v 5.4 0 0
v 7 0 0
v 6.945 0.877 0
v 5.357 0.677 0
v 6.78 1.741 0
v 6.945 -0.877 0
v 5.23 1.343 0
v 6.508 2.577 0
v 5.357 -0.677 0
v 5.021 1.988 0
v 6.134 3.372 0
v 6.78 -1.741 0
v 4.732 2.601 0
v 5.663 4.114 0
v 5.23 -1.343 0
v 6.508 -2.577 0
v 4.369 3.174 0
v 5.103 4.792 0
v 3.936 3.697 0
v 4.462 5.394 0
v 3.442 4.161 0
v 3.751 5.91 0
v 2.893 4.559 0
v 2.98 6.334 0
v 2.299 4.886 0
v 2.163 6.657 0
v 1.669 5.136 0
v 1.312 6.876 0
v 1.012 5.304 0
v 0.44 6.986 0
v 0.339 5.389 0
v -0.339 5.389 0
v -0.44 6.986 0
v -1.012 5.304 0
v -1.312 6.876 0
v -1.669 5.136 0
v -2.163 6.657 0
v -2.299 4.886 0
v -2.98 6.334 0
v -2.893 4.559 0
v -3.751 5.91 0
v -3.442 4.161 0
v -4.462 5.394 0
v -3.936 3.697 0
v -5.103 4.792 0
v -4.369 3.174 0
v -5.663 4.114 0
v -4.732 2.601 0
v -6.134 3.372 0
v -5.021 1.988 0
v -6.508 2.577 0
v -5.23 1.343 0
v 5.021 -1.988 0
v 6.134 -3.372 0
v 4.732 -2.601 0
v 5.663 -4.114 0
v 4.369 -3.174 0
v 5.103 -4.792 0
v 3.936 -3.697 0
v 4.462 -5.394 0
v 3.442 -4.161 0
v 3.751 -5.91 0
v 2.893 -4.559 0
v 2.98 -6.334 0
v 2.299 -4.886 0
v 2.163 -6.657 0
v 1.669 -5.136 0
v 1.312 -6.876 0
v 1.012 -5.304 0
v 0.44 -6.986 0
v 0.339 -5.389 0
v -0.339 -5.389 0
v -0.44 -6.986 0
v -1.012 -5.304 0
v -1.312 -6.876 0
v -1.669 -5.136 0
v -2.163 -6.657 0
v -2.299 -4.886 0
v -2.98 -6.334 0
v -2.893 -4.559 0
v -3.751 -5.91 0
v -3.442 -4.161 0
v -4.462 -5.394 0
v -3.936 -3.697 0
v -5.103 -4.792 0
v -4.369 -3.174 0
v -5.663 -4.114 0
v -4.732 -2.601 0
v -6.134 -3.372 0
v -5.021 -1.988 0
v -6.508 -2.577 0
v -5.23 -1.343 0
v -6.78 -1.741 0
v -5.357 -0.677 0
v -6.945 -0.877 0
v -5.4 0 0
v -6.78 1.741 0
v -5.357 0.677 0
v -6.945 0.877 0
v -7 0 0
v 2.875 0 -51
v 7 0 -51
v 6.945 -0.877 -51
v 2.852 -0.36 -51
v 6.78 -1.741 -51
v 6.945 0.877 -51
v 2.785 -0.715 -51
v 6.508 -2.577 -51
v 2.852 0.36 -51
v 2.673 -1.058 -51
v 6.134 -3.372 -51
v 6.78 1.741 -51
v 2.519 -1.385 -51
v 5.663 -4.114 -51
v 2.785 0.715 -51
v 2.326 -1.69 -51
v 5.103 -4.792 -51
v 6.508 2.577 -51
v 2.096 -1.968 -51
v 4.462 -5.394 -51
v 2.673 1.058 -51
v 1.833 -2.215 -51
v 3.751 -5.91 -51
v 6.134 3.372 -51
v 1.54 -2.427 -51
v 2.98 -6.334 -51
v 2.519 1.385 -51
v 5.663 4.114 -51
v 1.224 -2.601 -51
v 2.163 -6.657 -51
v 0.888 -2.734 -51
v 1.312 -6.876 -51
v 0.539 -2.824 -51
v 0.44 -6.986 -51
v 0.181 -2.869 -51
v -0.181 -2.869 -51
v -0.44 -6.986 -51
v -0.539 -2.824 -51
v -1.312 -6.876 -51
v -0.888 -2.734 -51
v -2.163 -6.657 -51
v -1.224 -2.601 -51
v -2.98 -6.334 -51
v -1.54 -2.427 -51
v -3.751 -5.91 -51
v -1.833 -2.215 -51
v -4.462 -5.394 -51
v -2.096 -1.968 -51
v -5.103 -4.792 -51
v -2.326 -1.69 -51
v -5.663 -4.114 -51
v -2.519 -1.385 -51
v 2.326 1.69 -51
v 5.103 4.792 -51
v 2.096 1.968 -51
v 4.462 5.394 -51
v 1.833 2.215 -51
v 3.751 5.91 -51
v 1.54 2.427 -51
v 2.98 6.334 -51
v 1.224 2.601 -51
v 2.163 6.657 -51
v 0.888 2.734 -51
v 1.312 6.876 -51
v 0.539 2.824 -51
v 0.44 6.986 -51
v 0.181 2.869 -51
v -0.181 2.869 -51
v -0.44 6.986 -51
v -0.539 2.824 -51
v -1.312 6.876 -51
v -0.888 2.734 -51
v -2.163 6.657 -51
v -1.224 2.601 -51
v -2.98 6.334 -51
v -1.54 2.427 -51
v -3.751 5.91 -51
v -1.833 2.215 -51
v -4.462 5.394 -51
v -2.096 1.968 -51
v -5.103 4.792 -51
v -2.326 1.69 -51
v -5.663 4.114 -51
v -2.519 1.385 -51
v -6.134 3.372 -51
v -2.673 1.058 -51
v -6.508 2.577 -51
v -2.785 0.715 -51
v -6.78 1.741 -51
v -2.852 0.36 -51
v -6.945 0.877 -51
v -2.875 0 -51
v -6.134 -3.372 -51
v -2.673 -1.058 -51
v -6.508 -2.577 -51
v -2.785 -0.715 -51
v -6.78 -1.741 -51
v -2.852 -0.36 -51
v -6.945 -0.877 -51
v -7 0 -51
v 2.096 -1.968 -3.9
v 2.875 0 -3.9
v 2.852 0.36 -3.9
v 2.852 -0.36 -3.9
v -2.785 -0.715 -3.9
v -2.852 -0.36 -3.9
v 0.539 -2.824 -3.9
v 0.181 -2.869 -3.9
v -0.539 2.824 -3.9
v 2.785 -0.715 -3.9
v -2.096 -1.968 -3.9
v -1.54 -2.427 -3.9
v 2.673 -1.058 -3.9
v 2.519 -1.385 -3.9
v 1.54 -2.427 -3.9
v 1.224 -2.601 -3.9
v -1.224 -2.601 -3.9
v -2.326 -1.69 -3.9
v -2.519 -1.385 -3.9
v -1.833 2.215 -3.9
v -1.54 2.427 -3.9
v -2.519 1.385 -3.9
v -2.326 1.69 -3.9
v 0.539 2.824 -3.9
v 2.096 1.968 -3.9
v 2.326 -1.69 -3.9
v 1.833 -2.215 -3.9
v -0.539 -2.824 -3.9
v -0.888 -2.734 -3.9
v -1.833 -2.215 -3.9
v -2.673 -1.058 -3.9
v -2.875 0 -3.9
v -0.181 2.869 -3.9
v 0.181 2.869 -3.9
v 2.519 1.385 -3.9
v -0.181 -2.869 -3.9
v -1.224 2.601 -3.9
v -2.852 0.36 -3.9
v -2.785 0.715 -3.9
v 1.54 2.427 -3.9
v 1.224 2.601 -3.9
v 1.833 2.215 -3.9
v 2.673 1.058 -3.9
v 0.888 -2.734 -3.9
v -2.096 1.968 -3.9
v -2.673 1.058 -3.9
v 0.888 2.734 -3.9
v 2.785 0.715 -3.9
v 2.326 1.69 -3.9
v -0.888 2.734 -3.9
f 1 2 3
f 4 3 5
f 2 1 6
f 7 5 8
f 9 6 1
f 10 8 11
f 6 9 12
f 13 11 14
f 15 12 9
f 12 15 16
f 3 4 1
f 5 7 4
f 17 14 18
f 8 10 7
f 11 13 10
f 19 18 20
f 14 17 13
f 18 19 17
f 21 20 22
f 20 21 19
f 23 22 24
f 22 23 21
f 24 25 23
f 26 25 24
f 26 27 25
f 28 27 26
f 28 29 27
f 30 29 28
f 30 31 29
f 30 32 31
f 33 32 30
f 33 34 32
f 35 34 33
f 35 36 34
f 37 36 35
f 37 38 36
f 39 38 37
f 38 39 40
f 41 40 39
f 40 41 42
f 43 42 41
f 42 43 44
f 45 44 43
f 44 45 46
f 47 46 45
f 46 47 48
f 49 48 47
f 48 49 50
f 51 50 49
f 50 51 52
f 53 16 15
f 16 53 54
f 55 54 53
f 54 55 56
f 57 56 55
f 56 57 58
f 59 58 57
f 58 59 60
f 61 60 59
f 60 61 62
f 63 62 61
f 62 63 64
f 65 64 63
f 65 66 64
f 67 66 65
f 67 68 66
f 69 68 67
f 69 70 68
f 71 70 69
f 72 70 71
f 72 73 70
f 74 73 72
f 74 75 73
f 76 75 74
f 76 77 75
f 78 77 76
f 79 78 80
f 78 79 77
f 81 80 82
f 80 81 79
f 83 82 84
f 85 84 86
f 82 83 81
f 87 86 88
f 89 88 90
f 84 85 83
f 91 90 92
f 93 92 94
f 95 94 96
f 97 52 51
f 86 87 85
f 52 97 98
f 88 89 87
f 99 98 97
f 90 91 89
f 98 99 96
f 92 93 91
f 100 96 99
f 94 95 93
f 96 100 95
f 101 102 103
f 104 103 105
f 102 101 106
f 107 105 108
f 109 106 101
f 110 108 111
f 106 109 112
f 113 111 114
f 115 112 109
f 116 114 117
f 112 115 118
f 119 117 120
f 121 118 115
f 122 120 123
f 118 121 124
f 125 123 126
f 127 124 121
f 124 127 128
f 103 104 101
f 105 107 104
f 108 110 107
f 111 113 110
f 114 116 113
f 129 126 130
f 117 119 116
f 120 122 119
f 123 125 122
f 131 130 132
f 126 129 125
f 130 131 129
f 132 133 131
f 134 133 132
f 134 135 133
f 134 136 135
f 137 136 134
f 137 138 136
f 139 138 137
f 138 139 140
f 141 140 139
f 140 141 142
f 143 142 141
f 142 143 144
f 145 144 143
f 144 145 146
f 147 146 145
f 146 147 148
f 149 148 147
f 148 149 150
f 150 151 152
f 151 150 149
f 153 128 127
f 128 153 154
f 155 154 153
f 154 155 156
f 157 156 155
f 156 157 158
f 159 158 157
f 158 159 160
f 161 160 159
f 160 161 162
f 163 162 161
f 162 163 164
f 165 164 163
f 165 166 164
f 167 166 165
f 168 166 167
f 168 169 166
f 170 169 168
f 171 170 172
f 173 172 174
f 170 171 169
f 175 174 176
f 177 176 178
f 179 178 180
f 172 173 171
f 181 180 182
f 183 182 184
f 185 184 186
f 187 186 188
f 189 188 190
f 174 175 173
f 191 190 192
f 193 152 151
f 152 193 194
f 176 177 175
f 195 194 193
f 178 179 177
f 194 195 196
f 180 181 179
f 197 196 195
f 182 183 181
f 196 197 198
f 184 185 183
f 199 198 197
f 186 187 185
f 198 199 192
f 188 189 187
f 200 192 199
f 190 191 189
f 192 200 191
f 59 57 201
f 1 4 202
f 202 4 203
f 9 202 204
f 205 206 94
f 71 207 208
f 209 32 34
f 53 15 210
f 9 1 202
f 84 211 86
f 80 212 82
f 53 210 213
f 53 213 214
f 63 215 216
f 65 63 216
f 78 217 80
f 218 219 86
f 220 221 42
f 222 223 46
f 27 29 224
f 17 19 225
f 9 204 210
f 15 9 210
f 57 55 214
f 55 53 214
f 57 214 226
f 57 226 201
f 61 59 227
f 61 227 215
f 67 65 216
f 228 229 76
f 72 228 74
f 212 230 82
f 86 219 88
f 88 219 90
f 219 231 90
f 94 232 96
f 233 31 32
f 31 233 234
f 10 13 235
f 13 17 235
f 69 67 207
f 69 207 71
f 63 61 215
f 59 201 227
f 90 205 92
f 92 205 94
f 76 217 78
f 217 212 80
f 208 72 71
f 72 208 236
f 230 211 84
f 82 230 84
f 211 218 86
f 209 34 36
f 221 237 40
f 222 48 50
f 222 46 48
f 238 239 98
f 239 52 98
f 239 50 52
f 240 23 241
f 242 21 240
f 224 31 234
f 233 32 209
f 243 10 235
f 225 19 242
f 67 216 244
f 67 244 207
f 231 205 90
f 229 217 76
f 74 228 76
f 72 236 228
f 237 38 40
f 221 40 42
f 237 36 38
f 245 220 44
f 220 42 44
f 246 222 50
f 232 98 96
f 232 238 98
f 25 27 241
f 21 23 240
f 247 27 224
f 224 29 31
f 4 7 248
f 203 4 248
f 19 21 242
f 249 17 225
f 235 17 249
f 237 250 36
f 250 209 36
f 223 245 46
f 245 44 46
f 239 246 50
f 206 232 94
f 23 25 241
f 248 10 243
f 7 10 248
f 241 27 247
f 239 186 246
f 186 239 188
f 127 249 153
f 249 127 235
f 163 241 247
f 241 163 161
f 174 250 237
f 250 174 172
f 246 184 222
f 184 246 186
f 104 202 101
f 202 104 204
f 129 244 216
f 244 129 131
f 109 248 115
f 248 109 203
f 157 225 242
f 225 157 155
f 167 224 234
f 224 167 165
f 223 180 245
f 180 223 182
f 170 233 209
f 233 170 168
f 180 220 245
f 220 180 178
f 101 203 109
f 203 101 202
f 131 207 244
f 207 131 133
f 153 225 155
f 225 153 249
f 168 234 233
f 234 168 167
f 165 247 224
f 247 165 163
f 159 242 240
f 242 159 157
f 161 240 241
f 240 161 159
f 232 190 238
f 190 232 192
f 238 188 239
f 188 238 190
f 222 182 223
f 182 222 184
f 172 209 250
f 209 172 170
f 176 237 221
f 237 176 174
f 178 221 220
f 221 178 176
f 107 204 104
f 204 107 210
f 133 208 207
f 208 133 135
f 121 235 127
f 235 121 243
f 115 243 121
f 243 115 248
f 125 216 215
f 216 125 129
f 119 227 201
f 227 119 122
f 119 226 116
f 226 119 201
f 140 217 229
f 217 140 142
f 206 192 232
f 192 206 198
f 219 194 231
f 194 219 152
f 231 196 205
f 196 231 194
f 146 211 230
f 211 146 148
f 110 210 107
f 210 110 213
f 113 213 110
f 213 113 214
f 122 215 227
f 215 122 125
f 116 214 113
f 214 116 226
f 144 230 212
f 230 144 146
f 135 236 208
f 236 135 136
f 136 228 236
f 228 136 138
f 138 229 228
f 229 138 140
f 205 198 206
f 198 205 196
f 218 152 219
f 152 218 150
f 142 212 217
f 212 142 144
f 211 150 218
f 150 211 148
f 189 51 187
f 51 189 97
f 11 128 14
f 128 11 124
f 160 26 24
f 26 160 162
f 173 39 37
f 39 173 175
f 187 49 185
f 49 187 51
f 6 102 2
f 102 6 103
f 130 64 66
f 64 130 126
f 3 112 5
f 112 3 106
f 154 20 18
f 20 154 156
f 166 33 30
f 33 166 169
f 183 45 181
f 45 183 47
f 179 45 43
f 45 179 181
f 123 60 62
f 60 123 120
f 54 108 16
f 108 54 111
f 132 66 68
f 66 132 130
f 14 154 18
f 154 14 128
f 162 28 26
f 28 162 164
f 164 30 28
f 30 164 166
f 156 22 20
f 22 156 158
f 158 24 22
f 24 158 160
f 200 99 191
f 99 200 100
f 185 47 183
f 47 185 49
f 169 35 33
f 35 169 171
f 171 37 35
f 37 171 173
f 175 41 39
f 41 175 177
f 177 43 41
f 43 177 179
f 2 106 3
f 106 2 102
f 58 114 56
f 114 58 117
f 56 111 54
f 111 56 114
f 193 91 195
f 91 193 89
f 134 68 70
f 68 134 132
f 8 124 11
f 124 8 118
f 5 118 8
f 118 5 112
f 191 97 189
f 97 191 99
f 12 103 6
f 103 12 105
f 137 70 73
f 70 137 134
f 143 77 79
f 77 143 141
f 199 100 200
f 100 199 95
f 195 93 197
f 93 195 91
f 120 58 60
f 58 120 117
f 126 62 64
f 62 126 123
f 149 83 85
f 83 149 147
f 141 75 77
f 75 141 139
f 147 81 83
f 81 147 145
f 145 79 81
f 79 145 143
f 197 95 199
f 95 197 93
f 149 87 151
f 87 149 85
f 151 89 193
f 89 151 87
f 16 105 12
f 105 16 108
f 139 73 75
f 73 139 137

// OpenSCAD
$fn = 50;


difference() {
	union() {
		translate(v = [0, 0, -51.0000000000]) {
			cylinder(h = 51, r = 7.0000000000);
		}
		cylinder(h = 0, r = 10.0000000000);
	}
	union() {
		translate(v = [0, 0, 0]) {
			rotate(a = [0, 0, 0]) {
				difference() {
					union() {
						#translate(v = [0, 0, -51.0000000000]) {
							cylinder(h = 51, r = 2.6000000000);
						}
						#translate(v = [0, 0, -3.9000000000]) {
							cylinder(h = 3.9000000000, r = 7.0000000000, r1 = 2.8750000000, r2 = 5.4000000000);
						}
						#translate(v = [0, 0, -51.0000000000]) {
							cylinder(h = 51, r = 2.8750000000);
						}
						#translate(v = [0, 0, -51.0000000000]) {
							cylinder(h = 51, r = 2.6000000000);
						}
					}
					union();
				}
			}
		}
	}
}
